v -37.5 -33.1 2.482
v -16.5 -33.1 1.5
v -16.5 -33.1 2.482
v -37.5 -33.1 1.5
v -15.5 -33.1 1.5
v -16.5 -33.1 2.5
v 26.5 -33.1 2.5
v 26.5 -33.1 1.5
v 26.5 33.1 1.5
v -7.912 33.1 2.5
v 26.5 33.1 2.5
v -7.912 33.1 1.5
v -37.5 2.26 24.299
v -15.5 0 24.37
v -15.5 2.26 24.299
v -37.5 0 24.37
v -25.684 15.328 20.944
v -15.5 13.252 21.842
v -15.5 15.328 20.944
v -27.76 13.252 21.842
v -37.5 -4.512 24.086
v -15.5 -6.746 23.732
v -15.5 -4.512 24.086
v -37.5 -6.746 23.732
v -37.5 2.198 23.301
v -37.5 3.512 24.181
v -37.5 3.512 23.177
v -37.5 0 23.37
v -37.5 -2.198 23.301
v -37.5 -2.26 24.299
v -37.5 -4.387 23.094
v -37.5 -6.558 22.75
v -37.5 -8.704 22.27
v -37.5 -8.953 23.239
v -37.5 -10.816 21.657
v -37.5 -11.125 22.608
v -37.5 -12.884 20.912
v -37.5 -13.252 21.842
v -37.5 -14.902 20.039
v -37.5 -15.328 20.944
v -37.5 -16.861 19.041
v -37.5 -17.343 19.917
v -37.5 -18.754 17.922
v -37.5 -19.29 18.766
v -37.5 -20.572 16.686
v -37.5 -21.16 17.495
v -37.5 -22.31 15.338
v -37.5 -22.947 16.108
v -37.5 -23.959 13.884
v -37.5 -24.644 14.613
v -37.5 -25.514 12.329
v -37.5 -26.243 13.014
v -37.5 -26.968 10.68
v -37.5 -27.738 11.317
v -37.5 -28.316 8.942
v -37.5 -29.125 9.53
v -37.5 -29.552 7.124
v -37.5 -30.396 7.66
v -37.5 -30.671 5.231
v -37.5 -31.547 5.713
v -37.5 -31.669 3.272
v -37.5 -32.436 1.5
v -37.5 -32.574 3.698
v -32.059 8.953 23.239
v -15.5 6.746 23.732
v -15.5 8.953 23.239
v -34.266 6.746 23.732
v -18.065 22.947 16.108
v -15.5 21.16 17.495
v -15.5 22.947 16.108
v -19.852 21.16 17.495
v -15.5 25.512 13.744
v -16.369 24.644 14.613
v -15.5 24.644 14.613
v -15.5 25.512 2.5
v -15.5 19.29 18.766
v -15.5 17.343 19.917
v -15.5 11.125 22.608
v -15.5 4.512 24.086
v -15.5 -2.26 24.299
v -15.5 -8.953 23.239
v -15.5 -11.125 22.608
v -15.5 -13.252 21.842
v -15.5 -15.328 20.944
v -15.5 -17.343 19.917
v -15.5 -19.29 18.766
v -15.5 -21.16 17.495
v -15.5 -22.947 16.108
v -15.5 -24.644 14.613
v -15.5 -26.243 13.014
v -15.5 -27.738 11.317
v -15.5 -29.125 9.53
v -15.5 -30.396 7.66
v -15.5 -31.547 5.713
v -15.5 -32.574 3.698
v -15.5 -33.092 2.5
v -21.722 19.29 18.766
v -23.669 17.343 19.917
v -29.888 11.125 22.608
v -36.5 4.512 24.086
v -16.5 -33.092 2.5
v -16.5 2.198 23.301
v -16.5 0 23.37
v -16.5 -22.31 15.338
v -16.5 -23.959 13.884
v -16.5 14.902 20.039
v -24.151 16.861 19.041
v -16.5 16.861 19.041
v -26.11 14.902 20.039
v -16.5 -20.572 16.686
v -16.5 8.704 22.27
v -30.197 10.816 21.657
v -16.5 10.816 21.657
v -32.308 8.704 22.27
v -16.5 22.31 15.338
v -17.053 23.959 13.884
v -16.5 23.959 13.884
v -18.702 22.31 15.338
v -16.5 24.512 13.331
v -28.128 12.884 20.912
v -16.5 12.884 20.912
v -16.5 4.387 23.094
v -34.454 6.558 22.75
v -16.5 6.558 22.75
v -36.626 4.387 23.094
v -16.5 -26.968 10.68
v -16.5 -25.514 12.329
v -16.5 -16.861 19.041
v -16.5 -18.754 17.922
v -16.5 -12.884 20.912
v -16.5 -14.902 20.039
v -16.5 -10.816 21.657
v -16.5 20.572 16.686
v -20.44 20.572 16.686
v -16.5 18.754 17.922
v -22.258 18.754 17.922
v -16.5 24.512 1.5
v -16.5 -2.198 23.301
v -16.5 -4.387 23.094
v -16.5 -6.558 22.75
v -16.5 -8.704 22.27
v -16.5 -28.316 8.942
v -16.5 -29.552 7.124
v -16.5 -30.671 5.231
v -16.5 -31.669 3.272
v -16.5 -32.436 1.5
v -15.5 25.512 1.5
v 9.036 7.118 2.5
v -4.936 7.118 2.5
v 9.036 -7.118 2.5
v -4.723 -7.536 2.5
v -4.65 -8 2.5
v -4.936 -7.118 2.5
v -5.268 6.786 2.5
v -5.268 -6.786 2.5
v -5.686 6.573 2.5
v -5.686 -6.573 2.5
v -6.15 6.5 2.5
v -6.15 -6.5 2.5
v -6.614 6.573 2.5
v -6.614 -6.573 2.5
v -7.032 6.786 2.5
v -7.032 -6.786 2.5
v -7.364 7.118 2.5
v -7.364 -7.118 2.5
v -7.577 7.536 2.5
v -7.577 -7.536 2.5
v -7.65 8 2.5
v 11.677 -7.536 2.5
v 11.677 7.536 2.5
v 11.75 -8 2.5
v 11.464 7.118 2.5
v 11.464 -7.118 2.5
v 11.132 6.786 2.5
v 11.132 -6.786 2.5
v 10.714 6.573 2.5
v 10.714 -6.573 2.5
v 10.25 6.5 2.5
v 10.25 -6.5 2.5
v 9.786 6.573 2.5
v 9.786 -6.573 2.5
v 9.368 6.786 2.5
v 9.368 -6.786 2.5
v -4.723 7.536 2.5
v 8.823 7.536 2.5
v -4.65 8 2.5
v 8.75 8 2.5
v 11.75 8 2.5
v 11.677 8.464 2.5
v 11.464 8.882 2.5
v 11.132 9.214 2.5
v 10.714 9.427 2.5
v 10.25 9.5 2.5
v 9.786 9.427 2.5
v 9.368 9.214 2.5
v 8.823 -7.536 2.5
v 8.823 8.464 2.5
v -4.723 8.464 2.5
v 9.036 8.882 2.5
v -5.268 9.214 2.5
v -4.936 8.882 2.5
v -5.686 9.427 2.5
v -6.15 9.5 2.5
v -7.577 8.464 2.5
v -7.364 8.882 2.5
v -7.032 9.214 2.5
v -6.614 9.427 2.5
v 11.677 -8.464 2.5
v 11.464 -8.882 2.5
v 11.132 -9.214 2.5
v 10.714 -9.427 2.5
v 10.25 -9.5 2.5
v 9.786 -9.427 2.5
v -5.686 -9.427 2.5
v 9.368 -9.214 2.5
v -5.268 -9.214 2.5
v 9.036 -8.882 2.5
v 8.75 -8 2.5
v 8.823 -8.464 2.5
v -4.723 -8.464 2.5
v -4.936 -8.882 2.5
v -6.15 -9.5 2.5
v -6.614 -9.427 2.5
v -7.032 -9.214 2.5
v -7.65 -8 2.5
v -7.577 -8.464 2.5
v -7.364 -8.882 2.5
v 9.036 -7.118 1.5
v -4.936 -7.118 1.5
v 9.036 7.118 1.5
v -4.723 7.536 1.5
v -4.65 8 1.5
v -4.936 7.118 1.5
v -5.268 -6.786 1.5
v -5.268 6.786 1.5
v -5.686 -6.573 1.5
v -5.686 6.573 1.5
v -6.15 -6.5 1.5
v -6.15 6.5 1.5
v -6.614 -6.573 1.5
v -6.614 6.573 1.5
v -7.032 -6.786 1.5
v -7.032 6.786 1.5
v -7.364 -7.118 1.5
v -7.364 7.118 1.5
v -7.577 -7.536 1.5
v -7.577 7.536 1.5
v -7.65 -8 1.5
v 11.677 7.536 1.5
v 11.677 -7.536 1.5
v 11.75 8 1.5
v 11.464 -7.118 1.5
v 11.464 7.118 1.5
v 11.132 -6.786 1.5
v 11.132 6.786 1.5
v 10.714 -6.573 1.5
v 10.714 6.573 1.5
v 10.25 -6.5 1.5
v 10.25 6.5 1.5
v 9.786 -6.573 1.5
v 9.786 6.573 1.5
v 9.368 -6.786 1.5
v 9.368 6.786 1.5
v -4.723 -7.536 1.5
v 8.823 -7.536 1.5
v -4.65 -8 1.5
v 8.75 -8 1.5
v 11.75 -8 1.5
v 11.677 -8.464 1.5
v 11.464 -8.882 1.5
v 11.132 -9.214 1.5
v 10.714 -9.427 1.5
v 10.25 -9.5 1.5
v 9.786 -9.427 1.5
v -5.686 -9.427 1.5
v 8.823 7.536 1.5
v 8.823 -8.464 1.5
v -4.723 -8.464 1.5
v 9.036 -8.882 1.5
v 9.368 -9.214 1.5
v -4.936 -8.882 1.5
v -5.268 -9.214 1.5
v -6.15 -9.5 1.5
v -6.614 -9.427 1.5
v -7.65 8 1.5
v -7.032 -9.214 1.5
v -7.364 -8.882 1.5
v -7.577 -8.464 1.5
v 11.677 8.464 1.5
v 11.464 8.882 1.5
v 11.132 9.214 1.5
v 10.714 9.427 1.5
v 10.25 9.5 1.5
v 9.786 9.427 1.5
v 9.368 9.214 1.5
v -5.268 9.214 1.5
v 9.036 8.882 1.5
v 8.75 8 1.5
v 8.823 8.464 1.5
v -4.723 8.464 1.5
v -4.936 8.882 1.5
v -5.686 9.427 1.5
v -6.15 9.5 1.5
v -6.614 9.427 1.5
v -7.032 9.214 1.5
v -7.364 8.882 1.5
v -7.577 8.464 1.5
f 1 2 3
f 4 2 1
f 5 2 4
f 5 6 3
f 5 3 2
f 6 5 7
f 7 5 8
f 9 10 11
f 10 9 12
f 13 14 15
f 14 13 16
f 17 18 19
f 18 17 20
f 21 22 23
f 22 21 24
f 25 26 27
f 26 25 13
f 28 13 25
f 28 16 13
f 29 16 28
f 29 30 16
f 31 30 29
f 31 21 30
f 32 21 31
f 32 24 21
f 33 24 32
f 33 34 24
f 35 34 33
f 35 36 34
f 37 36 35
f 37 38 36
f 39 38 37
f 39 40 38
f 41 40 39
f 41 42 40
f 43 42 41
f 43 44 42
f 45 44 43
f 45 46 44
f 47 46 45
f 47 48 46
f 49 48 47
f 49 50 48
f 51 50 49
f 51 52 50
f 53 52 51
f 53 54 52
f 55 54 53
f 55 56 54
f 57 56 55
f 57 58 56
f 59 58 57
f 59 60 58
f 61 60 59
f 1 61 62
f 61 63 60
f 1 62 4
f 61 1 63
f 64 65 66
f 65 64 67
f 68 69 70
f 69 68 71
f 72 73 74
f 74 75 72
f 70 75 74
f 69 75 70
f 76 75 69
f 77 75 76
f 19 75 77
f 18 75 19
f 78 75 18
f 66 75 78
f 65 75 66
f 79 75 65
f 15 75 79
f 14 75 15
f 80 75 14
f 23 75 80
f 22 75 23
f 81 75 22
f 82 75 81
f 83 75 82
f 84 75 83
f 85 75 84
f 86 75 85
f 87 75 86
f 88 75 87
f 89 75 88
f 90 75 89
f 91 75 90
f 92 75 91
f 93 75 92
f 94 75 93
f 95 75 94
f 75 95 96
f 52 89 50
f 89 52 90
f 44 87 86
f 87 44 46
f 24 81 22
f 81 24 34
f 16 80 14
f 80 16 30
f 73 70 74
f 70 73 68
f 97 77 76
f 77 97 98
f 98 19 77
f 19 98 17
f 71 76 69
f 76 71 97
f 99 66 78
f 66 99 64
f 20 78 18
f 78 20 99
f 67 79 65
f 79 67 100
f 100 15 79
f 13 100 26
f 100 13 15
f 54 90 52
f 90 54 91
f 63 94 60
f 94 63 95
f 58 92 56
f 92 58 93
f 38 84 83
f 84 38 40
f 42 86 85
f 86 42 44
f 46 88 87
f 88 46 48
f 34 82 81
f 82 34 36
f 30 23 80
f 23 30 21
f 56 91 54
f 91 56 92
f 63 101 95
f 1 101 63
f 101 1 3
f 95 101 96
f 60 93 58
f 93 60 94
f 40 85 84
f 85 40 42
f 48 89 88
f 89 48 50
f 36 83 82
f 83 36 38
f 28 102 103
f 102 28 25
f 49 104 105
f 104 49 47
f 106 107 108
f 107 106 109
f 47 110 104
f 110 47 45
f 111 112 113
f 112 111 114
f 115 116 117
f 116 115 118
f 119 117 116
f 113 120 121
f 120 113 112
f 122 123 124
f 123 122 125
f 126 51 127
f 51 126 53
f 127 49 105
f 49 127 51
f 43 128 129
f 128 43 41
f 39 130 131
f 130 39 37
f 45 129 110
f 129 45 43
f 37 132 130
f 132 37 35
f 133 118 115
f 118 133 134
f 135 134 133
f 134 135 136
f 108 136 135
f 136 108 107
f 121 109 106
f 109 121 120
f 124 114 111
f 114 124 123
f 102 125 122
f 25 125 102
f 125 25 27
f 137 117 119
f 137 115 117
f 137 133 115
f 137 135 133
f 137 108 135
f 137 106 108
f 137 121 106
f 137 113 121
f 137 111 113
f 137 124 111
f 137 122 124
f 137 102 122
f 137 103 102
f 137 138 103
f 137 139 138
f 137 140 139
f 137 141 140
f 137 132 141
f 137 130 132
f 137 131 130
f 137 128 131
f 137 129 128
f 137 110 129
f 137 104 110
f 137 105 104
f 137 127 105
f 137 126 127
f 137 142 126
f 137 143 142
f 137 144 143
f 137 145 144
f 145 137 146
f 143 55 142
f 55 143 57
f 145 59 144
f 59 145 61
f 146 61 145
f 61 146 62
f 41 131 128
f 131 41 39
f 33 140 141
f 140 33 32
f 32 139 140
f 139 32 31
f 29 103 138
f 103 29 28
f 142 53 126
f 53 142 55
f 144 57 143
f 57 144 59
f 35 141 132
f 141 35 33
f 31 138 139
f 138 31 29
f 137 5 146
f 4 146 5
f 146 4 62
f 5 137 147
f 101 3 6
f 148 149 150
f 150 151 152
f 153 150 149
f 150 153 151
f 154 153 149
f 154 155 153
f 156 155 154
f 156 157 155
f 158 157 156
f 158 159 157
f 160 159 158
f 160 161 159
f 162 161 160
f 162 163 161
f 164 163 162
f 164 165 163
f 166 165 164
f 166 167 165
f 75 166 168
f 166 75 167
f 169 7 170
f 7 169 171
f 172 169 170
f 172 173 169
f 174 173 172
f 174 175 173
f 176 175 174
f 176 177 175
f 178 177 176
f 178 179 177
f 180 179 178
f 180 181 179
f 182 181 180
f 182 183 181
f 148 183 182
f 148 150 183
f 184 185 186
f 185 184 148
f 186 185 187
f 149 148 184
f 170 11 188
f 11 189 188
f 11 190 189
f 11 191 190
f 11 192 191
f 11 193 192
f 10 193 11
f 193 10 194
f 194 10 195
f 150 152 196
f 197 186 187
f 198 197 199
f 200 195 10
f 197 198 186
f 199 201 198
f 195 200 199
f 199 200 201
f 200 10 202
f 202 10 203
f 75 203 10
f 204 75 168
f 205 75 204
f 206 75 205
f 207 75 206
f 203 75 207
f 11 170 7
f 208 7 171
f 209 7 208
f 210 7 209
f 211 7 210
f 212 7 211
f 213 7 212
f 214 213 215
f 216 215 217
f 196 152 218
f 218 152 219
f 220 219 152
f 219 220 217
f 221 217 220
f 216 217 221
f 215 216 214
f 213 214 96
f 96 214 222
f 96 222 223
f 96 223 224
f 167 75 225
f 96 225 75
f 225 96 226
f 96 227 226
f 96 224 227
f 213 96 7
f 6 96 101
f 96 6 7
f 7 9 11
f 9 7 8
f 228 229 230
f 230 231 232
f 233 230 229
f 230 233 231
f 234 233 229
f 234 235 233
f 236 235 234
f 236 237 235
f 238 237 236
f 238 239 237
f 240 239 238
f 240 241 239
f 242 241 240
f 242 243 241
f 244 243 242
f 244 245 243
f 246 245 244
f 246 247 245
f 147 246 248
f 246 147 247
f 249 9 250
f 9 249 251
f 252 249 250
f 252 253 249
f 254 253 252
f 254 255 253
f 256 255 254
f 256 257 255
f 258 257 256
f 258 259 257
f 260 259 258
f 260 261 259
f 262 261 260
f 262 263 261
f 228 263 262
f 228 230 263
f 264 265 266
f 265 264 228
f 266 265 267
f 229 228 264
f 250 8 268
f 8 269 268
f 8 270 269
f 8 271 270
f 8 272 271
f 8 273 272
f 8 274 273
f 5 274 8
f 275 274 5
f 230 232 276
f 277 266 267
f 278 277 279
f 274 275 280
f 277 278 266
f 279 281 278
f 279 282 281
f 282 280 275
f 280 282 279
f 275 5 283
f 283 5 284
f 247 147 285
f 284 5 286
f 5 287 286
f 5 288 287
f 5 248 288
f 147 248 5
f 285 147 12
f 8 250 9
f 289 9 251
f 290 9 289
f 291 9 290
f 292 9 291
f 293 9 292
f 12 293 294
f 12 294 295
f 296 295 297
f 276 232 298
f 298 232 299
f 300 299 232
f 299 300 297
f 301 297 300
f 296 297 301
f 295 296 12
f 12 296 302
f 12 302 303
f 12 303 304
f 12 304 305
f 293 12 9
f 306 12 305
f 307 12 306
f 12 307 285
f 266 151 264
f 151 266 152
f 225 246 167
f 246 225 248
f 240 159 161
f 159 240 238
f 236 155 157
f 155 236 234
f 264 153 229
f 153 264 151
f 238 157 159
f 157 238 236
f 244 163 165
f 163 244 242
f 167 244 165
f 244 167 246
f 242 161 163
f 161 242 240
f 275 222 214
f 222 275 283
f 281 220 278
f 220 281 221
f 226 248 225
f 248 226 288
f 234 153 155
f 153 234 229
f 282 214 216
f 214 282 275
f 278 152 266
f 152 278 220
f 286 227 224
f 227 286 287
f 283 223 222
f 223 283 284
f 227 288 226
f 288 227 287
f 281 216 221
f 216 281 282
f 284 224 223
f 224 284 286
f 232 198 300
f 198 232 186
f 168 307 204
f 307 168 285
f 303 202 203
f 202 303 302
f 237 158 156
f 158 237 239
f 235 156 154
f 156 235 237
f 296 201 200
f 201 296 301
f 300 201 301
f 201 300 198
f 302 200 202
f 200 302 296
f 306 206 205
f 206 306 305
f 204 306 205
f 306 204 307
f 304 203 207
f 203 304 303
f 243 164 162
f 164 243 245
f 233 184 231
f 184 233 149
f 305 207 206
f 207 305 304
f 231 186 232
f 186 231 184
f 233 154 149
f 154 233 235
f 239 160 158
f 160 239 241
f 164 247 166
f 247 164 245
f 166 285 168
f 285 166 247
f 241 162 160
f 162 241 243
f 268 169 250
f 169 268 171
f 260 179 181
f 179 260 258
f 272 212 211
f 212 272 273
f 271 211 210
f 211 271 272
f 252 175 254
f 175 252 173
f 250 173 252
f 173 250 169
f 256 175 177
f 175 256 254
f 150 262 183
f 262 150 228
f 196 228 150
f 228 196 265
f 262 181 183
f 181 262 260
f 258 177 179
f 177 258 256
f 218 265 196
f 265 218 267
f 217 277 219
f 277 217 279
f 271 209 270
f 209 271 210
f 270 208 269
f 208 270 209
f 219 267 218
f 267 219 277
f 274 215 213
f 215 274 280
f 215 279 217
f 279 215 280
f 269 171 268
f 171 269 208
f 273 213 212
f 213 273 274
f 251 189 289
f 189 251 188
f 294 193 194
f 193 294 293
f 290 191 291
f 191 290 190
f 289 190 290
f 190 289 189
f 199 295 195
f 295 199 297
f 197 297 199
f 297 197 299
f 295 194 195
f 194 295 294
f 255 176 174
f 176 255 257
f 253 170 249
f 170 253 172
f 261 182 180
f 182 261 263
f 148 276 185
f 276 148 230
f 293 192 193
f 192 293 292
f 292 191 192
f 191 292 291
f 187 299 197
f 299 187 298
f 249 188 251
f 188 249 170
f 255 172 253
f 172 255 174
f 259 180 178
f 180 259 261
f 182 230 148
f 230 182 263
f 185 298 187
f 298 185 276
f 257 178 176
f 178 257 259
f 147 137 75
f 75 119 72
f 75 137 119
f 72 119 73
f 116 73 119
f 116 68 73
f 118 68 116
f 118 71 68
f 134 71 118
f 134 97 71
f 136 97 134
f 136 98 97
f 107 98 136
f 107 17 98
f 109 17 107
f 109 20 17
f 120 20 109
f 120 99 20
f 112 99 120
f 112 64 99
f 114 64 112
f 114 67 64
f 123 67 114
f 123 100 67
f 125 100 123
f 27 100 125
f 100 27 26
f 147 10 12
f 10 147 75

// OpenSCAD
*color("grey") cube([33,26.2,3],center=true);

*for (x=[-33/2+8.6+1.75, -33/2+25+1.75],y=[-12.5/2-1.75,12.5/2+1.75]) translate([x,y,0]) cylinder(r=0.1, h=10, center=true);


difference() {
    union() {
        translate([10/2,0,4/2]) cube([33+10,26.2+40,1],center=true);

        translate([-28+1.5,0,-11.63]) rotate([0,90,0]) difference() {
            cylinder(r=36, h=22, $fn=100, center=true);
            translate([0,0,-1]) cylinder(r=35, h=22, $fn=100, center=true);
            translate([11.870,0,0]) cube([50,100,30],center=true);
            for (x=[-34.1,34.1]) translate([-14,x,0]) cube([2,2,30],center=true);
        }
    }
    
    rotate([0,0,-45]) translate([-36-8,0,12.5]) cube([30,70,30],center=true);
    
    for (x=[-33/2+8.6+1.75, -33/2+25+1.75],y=[-12.5/2-1.75,12.5/2+1.75]) translate([x,y,0]) cylinder(d=3,h=6,$fn=20,center=true);
    
}

    
